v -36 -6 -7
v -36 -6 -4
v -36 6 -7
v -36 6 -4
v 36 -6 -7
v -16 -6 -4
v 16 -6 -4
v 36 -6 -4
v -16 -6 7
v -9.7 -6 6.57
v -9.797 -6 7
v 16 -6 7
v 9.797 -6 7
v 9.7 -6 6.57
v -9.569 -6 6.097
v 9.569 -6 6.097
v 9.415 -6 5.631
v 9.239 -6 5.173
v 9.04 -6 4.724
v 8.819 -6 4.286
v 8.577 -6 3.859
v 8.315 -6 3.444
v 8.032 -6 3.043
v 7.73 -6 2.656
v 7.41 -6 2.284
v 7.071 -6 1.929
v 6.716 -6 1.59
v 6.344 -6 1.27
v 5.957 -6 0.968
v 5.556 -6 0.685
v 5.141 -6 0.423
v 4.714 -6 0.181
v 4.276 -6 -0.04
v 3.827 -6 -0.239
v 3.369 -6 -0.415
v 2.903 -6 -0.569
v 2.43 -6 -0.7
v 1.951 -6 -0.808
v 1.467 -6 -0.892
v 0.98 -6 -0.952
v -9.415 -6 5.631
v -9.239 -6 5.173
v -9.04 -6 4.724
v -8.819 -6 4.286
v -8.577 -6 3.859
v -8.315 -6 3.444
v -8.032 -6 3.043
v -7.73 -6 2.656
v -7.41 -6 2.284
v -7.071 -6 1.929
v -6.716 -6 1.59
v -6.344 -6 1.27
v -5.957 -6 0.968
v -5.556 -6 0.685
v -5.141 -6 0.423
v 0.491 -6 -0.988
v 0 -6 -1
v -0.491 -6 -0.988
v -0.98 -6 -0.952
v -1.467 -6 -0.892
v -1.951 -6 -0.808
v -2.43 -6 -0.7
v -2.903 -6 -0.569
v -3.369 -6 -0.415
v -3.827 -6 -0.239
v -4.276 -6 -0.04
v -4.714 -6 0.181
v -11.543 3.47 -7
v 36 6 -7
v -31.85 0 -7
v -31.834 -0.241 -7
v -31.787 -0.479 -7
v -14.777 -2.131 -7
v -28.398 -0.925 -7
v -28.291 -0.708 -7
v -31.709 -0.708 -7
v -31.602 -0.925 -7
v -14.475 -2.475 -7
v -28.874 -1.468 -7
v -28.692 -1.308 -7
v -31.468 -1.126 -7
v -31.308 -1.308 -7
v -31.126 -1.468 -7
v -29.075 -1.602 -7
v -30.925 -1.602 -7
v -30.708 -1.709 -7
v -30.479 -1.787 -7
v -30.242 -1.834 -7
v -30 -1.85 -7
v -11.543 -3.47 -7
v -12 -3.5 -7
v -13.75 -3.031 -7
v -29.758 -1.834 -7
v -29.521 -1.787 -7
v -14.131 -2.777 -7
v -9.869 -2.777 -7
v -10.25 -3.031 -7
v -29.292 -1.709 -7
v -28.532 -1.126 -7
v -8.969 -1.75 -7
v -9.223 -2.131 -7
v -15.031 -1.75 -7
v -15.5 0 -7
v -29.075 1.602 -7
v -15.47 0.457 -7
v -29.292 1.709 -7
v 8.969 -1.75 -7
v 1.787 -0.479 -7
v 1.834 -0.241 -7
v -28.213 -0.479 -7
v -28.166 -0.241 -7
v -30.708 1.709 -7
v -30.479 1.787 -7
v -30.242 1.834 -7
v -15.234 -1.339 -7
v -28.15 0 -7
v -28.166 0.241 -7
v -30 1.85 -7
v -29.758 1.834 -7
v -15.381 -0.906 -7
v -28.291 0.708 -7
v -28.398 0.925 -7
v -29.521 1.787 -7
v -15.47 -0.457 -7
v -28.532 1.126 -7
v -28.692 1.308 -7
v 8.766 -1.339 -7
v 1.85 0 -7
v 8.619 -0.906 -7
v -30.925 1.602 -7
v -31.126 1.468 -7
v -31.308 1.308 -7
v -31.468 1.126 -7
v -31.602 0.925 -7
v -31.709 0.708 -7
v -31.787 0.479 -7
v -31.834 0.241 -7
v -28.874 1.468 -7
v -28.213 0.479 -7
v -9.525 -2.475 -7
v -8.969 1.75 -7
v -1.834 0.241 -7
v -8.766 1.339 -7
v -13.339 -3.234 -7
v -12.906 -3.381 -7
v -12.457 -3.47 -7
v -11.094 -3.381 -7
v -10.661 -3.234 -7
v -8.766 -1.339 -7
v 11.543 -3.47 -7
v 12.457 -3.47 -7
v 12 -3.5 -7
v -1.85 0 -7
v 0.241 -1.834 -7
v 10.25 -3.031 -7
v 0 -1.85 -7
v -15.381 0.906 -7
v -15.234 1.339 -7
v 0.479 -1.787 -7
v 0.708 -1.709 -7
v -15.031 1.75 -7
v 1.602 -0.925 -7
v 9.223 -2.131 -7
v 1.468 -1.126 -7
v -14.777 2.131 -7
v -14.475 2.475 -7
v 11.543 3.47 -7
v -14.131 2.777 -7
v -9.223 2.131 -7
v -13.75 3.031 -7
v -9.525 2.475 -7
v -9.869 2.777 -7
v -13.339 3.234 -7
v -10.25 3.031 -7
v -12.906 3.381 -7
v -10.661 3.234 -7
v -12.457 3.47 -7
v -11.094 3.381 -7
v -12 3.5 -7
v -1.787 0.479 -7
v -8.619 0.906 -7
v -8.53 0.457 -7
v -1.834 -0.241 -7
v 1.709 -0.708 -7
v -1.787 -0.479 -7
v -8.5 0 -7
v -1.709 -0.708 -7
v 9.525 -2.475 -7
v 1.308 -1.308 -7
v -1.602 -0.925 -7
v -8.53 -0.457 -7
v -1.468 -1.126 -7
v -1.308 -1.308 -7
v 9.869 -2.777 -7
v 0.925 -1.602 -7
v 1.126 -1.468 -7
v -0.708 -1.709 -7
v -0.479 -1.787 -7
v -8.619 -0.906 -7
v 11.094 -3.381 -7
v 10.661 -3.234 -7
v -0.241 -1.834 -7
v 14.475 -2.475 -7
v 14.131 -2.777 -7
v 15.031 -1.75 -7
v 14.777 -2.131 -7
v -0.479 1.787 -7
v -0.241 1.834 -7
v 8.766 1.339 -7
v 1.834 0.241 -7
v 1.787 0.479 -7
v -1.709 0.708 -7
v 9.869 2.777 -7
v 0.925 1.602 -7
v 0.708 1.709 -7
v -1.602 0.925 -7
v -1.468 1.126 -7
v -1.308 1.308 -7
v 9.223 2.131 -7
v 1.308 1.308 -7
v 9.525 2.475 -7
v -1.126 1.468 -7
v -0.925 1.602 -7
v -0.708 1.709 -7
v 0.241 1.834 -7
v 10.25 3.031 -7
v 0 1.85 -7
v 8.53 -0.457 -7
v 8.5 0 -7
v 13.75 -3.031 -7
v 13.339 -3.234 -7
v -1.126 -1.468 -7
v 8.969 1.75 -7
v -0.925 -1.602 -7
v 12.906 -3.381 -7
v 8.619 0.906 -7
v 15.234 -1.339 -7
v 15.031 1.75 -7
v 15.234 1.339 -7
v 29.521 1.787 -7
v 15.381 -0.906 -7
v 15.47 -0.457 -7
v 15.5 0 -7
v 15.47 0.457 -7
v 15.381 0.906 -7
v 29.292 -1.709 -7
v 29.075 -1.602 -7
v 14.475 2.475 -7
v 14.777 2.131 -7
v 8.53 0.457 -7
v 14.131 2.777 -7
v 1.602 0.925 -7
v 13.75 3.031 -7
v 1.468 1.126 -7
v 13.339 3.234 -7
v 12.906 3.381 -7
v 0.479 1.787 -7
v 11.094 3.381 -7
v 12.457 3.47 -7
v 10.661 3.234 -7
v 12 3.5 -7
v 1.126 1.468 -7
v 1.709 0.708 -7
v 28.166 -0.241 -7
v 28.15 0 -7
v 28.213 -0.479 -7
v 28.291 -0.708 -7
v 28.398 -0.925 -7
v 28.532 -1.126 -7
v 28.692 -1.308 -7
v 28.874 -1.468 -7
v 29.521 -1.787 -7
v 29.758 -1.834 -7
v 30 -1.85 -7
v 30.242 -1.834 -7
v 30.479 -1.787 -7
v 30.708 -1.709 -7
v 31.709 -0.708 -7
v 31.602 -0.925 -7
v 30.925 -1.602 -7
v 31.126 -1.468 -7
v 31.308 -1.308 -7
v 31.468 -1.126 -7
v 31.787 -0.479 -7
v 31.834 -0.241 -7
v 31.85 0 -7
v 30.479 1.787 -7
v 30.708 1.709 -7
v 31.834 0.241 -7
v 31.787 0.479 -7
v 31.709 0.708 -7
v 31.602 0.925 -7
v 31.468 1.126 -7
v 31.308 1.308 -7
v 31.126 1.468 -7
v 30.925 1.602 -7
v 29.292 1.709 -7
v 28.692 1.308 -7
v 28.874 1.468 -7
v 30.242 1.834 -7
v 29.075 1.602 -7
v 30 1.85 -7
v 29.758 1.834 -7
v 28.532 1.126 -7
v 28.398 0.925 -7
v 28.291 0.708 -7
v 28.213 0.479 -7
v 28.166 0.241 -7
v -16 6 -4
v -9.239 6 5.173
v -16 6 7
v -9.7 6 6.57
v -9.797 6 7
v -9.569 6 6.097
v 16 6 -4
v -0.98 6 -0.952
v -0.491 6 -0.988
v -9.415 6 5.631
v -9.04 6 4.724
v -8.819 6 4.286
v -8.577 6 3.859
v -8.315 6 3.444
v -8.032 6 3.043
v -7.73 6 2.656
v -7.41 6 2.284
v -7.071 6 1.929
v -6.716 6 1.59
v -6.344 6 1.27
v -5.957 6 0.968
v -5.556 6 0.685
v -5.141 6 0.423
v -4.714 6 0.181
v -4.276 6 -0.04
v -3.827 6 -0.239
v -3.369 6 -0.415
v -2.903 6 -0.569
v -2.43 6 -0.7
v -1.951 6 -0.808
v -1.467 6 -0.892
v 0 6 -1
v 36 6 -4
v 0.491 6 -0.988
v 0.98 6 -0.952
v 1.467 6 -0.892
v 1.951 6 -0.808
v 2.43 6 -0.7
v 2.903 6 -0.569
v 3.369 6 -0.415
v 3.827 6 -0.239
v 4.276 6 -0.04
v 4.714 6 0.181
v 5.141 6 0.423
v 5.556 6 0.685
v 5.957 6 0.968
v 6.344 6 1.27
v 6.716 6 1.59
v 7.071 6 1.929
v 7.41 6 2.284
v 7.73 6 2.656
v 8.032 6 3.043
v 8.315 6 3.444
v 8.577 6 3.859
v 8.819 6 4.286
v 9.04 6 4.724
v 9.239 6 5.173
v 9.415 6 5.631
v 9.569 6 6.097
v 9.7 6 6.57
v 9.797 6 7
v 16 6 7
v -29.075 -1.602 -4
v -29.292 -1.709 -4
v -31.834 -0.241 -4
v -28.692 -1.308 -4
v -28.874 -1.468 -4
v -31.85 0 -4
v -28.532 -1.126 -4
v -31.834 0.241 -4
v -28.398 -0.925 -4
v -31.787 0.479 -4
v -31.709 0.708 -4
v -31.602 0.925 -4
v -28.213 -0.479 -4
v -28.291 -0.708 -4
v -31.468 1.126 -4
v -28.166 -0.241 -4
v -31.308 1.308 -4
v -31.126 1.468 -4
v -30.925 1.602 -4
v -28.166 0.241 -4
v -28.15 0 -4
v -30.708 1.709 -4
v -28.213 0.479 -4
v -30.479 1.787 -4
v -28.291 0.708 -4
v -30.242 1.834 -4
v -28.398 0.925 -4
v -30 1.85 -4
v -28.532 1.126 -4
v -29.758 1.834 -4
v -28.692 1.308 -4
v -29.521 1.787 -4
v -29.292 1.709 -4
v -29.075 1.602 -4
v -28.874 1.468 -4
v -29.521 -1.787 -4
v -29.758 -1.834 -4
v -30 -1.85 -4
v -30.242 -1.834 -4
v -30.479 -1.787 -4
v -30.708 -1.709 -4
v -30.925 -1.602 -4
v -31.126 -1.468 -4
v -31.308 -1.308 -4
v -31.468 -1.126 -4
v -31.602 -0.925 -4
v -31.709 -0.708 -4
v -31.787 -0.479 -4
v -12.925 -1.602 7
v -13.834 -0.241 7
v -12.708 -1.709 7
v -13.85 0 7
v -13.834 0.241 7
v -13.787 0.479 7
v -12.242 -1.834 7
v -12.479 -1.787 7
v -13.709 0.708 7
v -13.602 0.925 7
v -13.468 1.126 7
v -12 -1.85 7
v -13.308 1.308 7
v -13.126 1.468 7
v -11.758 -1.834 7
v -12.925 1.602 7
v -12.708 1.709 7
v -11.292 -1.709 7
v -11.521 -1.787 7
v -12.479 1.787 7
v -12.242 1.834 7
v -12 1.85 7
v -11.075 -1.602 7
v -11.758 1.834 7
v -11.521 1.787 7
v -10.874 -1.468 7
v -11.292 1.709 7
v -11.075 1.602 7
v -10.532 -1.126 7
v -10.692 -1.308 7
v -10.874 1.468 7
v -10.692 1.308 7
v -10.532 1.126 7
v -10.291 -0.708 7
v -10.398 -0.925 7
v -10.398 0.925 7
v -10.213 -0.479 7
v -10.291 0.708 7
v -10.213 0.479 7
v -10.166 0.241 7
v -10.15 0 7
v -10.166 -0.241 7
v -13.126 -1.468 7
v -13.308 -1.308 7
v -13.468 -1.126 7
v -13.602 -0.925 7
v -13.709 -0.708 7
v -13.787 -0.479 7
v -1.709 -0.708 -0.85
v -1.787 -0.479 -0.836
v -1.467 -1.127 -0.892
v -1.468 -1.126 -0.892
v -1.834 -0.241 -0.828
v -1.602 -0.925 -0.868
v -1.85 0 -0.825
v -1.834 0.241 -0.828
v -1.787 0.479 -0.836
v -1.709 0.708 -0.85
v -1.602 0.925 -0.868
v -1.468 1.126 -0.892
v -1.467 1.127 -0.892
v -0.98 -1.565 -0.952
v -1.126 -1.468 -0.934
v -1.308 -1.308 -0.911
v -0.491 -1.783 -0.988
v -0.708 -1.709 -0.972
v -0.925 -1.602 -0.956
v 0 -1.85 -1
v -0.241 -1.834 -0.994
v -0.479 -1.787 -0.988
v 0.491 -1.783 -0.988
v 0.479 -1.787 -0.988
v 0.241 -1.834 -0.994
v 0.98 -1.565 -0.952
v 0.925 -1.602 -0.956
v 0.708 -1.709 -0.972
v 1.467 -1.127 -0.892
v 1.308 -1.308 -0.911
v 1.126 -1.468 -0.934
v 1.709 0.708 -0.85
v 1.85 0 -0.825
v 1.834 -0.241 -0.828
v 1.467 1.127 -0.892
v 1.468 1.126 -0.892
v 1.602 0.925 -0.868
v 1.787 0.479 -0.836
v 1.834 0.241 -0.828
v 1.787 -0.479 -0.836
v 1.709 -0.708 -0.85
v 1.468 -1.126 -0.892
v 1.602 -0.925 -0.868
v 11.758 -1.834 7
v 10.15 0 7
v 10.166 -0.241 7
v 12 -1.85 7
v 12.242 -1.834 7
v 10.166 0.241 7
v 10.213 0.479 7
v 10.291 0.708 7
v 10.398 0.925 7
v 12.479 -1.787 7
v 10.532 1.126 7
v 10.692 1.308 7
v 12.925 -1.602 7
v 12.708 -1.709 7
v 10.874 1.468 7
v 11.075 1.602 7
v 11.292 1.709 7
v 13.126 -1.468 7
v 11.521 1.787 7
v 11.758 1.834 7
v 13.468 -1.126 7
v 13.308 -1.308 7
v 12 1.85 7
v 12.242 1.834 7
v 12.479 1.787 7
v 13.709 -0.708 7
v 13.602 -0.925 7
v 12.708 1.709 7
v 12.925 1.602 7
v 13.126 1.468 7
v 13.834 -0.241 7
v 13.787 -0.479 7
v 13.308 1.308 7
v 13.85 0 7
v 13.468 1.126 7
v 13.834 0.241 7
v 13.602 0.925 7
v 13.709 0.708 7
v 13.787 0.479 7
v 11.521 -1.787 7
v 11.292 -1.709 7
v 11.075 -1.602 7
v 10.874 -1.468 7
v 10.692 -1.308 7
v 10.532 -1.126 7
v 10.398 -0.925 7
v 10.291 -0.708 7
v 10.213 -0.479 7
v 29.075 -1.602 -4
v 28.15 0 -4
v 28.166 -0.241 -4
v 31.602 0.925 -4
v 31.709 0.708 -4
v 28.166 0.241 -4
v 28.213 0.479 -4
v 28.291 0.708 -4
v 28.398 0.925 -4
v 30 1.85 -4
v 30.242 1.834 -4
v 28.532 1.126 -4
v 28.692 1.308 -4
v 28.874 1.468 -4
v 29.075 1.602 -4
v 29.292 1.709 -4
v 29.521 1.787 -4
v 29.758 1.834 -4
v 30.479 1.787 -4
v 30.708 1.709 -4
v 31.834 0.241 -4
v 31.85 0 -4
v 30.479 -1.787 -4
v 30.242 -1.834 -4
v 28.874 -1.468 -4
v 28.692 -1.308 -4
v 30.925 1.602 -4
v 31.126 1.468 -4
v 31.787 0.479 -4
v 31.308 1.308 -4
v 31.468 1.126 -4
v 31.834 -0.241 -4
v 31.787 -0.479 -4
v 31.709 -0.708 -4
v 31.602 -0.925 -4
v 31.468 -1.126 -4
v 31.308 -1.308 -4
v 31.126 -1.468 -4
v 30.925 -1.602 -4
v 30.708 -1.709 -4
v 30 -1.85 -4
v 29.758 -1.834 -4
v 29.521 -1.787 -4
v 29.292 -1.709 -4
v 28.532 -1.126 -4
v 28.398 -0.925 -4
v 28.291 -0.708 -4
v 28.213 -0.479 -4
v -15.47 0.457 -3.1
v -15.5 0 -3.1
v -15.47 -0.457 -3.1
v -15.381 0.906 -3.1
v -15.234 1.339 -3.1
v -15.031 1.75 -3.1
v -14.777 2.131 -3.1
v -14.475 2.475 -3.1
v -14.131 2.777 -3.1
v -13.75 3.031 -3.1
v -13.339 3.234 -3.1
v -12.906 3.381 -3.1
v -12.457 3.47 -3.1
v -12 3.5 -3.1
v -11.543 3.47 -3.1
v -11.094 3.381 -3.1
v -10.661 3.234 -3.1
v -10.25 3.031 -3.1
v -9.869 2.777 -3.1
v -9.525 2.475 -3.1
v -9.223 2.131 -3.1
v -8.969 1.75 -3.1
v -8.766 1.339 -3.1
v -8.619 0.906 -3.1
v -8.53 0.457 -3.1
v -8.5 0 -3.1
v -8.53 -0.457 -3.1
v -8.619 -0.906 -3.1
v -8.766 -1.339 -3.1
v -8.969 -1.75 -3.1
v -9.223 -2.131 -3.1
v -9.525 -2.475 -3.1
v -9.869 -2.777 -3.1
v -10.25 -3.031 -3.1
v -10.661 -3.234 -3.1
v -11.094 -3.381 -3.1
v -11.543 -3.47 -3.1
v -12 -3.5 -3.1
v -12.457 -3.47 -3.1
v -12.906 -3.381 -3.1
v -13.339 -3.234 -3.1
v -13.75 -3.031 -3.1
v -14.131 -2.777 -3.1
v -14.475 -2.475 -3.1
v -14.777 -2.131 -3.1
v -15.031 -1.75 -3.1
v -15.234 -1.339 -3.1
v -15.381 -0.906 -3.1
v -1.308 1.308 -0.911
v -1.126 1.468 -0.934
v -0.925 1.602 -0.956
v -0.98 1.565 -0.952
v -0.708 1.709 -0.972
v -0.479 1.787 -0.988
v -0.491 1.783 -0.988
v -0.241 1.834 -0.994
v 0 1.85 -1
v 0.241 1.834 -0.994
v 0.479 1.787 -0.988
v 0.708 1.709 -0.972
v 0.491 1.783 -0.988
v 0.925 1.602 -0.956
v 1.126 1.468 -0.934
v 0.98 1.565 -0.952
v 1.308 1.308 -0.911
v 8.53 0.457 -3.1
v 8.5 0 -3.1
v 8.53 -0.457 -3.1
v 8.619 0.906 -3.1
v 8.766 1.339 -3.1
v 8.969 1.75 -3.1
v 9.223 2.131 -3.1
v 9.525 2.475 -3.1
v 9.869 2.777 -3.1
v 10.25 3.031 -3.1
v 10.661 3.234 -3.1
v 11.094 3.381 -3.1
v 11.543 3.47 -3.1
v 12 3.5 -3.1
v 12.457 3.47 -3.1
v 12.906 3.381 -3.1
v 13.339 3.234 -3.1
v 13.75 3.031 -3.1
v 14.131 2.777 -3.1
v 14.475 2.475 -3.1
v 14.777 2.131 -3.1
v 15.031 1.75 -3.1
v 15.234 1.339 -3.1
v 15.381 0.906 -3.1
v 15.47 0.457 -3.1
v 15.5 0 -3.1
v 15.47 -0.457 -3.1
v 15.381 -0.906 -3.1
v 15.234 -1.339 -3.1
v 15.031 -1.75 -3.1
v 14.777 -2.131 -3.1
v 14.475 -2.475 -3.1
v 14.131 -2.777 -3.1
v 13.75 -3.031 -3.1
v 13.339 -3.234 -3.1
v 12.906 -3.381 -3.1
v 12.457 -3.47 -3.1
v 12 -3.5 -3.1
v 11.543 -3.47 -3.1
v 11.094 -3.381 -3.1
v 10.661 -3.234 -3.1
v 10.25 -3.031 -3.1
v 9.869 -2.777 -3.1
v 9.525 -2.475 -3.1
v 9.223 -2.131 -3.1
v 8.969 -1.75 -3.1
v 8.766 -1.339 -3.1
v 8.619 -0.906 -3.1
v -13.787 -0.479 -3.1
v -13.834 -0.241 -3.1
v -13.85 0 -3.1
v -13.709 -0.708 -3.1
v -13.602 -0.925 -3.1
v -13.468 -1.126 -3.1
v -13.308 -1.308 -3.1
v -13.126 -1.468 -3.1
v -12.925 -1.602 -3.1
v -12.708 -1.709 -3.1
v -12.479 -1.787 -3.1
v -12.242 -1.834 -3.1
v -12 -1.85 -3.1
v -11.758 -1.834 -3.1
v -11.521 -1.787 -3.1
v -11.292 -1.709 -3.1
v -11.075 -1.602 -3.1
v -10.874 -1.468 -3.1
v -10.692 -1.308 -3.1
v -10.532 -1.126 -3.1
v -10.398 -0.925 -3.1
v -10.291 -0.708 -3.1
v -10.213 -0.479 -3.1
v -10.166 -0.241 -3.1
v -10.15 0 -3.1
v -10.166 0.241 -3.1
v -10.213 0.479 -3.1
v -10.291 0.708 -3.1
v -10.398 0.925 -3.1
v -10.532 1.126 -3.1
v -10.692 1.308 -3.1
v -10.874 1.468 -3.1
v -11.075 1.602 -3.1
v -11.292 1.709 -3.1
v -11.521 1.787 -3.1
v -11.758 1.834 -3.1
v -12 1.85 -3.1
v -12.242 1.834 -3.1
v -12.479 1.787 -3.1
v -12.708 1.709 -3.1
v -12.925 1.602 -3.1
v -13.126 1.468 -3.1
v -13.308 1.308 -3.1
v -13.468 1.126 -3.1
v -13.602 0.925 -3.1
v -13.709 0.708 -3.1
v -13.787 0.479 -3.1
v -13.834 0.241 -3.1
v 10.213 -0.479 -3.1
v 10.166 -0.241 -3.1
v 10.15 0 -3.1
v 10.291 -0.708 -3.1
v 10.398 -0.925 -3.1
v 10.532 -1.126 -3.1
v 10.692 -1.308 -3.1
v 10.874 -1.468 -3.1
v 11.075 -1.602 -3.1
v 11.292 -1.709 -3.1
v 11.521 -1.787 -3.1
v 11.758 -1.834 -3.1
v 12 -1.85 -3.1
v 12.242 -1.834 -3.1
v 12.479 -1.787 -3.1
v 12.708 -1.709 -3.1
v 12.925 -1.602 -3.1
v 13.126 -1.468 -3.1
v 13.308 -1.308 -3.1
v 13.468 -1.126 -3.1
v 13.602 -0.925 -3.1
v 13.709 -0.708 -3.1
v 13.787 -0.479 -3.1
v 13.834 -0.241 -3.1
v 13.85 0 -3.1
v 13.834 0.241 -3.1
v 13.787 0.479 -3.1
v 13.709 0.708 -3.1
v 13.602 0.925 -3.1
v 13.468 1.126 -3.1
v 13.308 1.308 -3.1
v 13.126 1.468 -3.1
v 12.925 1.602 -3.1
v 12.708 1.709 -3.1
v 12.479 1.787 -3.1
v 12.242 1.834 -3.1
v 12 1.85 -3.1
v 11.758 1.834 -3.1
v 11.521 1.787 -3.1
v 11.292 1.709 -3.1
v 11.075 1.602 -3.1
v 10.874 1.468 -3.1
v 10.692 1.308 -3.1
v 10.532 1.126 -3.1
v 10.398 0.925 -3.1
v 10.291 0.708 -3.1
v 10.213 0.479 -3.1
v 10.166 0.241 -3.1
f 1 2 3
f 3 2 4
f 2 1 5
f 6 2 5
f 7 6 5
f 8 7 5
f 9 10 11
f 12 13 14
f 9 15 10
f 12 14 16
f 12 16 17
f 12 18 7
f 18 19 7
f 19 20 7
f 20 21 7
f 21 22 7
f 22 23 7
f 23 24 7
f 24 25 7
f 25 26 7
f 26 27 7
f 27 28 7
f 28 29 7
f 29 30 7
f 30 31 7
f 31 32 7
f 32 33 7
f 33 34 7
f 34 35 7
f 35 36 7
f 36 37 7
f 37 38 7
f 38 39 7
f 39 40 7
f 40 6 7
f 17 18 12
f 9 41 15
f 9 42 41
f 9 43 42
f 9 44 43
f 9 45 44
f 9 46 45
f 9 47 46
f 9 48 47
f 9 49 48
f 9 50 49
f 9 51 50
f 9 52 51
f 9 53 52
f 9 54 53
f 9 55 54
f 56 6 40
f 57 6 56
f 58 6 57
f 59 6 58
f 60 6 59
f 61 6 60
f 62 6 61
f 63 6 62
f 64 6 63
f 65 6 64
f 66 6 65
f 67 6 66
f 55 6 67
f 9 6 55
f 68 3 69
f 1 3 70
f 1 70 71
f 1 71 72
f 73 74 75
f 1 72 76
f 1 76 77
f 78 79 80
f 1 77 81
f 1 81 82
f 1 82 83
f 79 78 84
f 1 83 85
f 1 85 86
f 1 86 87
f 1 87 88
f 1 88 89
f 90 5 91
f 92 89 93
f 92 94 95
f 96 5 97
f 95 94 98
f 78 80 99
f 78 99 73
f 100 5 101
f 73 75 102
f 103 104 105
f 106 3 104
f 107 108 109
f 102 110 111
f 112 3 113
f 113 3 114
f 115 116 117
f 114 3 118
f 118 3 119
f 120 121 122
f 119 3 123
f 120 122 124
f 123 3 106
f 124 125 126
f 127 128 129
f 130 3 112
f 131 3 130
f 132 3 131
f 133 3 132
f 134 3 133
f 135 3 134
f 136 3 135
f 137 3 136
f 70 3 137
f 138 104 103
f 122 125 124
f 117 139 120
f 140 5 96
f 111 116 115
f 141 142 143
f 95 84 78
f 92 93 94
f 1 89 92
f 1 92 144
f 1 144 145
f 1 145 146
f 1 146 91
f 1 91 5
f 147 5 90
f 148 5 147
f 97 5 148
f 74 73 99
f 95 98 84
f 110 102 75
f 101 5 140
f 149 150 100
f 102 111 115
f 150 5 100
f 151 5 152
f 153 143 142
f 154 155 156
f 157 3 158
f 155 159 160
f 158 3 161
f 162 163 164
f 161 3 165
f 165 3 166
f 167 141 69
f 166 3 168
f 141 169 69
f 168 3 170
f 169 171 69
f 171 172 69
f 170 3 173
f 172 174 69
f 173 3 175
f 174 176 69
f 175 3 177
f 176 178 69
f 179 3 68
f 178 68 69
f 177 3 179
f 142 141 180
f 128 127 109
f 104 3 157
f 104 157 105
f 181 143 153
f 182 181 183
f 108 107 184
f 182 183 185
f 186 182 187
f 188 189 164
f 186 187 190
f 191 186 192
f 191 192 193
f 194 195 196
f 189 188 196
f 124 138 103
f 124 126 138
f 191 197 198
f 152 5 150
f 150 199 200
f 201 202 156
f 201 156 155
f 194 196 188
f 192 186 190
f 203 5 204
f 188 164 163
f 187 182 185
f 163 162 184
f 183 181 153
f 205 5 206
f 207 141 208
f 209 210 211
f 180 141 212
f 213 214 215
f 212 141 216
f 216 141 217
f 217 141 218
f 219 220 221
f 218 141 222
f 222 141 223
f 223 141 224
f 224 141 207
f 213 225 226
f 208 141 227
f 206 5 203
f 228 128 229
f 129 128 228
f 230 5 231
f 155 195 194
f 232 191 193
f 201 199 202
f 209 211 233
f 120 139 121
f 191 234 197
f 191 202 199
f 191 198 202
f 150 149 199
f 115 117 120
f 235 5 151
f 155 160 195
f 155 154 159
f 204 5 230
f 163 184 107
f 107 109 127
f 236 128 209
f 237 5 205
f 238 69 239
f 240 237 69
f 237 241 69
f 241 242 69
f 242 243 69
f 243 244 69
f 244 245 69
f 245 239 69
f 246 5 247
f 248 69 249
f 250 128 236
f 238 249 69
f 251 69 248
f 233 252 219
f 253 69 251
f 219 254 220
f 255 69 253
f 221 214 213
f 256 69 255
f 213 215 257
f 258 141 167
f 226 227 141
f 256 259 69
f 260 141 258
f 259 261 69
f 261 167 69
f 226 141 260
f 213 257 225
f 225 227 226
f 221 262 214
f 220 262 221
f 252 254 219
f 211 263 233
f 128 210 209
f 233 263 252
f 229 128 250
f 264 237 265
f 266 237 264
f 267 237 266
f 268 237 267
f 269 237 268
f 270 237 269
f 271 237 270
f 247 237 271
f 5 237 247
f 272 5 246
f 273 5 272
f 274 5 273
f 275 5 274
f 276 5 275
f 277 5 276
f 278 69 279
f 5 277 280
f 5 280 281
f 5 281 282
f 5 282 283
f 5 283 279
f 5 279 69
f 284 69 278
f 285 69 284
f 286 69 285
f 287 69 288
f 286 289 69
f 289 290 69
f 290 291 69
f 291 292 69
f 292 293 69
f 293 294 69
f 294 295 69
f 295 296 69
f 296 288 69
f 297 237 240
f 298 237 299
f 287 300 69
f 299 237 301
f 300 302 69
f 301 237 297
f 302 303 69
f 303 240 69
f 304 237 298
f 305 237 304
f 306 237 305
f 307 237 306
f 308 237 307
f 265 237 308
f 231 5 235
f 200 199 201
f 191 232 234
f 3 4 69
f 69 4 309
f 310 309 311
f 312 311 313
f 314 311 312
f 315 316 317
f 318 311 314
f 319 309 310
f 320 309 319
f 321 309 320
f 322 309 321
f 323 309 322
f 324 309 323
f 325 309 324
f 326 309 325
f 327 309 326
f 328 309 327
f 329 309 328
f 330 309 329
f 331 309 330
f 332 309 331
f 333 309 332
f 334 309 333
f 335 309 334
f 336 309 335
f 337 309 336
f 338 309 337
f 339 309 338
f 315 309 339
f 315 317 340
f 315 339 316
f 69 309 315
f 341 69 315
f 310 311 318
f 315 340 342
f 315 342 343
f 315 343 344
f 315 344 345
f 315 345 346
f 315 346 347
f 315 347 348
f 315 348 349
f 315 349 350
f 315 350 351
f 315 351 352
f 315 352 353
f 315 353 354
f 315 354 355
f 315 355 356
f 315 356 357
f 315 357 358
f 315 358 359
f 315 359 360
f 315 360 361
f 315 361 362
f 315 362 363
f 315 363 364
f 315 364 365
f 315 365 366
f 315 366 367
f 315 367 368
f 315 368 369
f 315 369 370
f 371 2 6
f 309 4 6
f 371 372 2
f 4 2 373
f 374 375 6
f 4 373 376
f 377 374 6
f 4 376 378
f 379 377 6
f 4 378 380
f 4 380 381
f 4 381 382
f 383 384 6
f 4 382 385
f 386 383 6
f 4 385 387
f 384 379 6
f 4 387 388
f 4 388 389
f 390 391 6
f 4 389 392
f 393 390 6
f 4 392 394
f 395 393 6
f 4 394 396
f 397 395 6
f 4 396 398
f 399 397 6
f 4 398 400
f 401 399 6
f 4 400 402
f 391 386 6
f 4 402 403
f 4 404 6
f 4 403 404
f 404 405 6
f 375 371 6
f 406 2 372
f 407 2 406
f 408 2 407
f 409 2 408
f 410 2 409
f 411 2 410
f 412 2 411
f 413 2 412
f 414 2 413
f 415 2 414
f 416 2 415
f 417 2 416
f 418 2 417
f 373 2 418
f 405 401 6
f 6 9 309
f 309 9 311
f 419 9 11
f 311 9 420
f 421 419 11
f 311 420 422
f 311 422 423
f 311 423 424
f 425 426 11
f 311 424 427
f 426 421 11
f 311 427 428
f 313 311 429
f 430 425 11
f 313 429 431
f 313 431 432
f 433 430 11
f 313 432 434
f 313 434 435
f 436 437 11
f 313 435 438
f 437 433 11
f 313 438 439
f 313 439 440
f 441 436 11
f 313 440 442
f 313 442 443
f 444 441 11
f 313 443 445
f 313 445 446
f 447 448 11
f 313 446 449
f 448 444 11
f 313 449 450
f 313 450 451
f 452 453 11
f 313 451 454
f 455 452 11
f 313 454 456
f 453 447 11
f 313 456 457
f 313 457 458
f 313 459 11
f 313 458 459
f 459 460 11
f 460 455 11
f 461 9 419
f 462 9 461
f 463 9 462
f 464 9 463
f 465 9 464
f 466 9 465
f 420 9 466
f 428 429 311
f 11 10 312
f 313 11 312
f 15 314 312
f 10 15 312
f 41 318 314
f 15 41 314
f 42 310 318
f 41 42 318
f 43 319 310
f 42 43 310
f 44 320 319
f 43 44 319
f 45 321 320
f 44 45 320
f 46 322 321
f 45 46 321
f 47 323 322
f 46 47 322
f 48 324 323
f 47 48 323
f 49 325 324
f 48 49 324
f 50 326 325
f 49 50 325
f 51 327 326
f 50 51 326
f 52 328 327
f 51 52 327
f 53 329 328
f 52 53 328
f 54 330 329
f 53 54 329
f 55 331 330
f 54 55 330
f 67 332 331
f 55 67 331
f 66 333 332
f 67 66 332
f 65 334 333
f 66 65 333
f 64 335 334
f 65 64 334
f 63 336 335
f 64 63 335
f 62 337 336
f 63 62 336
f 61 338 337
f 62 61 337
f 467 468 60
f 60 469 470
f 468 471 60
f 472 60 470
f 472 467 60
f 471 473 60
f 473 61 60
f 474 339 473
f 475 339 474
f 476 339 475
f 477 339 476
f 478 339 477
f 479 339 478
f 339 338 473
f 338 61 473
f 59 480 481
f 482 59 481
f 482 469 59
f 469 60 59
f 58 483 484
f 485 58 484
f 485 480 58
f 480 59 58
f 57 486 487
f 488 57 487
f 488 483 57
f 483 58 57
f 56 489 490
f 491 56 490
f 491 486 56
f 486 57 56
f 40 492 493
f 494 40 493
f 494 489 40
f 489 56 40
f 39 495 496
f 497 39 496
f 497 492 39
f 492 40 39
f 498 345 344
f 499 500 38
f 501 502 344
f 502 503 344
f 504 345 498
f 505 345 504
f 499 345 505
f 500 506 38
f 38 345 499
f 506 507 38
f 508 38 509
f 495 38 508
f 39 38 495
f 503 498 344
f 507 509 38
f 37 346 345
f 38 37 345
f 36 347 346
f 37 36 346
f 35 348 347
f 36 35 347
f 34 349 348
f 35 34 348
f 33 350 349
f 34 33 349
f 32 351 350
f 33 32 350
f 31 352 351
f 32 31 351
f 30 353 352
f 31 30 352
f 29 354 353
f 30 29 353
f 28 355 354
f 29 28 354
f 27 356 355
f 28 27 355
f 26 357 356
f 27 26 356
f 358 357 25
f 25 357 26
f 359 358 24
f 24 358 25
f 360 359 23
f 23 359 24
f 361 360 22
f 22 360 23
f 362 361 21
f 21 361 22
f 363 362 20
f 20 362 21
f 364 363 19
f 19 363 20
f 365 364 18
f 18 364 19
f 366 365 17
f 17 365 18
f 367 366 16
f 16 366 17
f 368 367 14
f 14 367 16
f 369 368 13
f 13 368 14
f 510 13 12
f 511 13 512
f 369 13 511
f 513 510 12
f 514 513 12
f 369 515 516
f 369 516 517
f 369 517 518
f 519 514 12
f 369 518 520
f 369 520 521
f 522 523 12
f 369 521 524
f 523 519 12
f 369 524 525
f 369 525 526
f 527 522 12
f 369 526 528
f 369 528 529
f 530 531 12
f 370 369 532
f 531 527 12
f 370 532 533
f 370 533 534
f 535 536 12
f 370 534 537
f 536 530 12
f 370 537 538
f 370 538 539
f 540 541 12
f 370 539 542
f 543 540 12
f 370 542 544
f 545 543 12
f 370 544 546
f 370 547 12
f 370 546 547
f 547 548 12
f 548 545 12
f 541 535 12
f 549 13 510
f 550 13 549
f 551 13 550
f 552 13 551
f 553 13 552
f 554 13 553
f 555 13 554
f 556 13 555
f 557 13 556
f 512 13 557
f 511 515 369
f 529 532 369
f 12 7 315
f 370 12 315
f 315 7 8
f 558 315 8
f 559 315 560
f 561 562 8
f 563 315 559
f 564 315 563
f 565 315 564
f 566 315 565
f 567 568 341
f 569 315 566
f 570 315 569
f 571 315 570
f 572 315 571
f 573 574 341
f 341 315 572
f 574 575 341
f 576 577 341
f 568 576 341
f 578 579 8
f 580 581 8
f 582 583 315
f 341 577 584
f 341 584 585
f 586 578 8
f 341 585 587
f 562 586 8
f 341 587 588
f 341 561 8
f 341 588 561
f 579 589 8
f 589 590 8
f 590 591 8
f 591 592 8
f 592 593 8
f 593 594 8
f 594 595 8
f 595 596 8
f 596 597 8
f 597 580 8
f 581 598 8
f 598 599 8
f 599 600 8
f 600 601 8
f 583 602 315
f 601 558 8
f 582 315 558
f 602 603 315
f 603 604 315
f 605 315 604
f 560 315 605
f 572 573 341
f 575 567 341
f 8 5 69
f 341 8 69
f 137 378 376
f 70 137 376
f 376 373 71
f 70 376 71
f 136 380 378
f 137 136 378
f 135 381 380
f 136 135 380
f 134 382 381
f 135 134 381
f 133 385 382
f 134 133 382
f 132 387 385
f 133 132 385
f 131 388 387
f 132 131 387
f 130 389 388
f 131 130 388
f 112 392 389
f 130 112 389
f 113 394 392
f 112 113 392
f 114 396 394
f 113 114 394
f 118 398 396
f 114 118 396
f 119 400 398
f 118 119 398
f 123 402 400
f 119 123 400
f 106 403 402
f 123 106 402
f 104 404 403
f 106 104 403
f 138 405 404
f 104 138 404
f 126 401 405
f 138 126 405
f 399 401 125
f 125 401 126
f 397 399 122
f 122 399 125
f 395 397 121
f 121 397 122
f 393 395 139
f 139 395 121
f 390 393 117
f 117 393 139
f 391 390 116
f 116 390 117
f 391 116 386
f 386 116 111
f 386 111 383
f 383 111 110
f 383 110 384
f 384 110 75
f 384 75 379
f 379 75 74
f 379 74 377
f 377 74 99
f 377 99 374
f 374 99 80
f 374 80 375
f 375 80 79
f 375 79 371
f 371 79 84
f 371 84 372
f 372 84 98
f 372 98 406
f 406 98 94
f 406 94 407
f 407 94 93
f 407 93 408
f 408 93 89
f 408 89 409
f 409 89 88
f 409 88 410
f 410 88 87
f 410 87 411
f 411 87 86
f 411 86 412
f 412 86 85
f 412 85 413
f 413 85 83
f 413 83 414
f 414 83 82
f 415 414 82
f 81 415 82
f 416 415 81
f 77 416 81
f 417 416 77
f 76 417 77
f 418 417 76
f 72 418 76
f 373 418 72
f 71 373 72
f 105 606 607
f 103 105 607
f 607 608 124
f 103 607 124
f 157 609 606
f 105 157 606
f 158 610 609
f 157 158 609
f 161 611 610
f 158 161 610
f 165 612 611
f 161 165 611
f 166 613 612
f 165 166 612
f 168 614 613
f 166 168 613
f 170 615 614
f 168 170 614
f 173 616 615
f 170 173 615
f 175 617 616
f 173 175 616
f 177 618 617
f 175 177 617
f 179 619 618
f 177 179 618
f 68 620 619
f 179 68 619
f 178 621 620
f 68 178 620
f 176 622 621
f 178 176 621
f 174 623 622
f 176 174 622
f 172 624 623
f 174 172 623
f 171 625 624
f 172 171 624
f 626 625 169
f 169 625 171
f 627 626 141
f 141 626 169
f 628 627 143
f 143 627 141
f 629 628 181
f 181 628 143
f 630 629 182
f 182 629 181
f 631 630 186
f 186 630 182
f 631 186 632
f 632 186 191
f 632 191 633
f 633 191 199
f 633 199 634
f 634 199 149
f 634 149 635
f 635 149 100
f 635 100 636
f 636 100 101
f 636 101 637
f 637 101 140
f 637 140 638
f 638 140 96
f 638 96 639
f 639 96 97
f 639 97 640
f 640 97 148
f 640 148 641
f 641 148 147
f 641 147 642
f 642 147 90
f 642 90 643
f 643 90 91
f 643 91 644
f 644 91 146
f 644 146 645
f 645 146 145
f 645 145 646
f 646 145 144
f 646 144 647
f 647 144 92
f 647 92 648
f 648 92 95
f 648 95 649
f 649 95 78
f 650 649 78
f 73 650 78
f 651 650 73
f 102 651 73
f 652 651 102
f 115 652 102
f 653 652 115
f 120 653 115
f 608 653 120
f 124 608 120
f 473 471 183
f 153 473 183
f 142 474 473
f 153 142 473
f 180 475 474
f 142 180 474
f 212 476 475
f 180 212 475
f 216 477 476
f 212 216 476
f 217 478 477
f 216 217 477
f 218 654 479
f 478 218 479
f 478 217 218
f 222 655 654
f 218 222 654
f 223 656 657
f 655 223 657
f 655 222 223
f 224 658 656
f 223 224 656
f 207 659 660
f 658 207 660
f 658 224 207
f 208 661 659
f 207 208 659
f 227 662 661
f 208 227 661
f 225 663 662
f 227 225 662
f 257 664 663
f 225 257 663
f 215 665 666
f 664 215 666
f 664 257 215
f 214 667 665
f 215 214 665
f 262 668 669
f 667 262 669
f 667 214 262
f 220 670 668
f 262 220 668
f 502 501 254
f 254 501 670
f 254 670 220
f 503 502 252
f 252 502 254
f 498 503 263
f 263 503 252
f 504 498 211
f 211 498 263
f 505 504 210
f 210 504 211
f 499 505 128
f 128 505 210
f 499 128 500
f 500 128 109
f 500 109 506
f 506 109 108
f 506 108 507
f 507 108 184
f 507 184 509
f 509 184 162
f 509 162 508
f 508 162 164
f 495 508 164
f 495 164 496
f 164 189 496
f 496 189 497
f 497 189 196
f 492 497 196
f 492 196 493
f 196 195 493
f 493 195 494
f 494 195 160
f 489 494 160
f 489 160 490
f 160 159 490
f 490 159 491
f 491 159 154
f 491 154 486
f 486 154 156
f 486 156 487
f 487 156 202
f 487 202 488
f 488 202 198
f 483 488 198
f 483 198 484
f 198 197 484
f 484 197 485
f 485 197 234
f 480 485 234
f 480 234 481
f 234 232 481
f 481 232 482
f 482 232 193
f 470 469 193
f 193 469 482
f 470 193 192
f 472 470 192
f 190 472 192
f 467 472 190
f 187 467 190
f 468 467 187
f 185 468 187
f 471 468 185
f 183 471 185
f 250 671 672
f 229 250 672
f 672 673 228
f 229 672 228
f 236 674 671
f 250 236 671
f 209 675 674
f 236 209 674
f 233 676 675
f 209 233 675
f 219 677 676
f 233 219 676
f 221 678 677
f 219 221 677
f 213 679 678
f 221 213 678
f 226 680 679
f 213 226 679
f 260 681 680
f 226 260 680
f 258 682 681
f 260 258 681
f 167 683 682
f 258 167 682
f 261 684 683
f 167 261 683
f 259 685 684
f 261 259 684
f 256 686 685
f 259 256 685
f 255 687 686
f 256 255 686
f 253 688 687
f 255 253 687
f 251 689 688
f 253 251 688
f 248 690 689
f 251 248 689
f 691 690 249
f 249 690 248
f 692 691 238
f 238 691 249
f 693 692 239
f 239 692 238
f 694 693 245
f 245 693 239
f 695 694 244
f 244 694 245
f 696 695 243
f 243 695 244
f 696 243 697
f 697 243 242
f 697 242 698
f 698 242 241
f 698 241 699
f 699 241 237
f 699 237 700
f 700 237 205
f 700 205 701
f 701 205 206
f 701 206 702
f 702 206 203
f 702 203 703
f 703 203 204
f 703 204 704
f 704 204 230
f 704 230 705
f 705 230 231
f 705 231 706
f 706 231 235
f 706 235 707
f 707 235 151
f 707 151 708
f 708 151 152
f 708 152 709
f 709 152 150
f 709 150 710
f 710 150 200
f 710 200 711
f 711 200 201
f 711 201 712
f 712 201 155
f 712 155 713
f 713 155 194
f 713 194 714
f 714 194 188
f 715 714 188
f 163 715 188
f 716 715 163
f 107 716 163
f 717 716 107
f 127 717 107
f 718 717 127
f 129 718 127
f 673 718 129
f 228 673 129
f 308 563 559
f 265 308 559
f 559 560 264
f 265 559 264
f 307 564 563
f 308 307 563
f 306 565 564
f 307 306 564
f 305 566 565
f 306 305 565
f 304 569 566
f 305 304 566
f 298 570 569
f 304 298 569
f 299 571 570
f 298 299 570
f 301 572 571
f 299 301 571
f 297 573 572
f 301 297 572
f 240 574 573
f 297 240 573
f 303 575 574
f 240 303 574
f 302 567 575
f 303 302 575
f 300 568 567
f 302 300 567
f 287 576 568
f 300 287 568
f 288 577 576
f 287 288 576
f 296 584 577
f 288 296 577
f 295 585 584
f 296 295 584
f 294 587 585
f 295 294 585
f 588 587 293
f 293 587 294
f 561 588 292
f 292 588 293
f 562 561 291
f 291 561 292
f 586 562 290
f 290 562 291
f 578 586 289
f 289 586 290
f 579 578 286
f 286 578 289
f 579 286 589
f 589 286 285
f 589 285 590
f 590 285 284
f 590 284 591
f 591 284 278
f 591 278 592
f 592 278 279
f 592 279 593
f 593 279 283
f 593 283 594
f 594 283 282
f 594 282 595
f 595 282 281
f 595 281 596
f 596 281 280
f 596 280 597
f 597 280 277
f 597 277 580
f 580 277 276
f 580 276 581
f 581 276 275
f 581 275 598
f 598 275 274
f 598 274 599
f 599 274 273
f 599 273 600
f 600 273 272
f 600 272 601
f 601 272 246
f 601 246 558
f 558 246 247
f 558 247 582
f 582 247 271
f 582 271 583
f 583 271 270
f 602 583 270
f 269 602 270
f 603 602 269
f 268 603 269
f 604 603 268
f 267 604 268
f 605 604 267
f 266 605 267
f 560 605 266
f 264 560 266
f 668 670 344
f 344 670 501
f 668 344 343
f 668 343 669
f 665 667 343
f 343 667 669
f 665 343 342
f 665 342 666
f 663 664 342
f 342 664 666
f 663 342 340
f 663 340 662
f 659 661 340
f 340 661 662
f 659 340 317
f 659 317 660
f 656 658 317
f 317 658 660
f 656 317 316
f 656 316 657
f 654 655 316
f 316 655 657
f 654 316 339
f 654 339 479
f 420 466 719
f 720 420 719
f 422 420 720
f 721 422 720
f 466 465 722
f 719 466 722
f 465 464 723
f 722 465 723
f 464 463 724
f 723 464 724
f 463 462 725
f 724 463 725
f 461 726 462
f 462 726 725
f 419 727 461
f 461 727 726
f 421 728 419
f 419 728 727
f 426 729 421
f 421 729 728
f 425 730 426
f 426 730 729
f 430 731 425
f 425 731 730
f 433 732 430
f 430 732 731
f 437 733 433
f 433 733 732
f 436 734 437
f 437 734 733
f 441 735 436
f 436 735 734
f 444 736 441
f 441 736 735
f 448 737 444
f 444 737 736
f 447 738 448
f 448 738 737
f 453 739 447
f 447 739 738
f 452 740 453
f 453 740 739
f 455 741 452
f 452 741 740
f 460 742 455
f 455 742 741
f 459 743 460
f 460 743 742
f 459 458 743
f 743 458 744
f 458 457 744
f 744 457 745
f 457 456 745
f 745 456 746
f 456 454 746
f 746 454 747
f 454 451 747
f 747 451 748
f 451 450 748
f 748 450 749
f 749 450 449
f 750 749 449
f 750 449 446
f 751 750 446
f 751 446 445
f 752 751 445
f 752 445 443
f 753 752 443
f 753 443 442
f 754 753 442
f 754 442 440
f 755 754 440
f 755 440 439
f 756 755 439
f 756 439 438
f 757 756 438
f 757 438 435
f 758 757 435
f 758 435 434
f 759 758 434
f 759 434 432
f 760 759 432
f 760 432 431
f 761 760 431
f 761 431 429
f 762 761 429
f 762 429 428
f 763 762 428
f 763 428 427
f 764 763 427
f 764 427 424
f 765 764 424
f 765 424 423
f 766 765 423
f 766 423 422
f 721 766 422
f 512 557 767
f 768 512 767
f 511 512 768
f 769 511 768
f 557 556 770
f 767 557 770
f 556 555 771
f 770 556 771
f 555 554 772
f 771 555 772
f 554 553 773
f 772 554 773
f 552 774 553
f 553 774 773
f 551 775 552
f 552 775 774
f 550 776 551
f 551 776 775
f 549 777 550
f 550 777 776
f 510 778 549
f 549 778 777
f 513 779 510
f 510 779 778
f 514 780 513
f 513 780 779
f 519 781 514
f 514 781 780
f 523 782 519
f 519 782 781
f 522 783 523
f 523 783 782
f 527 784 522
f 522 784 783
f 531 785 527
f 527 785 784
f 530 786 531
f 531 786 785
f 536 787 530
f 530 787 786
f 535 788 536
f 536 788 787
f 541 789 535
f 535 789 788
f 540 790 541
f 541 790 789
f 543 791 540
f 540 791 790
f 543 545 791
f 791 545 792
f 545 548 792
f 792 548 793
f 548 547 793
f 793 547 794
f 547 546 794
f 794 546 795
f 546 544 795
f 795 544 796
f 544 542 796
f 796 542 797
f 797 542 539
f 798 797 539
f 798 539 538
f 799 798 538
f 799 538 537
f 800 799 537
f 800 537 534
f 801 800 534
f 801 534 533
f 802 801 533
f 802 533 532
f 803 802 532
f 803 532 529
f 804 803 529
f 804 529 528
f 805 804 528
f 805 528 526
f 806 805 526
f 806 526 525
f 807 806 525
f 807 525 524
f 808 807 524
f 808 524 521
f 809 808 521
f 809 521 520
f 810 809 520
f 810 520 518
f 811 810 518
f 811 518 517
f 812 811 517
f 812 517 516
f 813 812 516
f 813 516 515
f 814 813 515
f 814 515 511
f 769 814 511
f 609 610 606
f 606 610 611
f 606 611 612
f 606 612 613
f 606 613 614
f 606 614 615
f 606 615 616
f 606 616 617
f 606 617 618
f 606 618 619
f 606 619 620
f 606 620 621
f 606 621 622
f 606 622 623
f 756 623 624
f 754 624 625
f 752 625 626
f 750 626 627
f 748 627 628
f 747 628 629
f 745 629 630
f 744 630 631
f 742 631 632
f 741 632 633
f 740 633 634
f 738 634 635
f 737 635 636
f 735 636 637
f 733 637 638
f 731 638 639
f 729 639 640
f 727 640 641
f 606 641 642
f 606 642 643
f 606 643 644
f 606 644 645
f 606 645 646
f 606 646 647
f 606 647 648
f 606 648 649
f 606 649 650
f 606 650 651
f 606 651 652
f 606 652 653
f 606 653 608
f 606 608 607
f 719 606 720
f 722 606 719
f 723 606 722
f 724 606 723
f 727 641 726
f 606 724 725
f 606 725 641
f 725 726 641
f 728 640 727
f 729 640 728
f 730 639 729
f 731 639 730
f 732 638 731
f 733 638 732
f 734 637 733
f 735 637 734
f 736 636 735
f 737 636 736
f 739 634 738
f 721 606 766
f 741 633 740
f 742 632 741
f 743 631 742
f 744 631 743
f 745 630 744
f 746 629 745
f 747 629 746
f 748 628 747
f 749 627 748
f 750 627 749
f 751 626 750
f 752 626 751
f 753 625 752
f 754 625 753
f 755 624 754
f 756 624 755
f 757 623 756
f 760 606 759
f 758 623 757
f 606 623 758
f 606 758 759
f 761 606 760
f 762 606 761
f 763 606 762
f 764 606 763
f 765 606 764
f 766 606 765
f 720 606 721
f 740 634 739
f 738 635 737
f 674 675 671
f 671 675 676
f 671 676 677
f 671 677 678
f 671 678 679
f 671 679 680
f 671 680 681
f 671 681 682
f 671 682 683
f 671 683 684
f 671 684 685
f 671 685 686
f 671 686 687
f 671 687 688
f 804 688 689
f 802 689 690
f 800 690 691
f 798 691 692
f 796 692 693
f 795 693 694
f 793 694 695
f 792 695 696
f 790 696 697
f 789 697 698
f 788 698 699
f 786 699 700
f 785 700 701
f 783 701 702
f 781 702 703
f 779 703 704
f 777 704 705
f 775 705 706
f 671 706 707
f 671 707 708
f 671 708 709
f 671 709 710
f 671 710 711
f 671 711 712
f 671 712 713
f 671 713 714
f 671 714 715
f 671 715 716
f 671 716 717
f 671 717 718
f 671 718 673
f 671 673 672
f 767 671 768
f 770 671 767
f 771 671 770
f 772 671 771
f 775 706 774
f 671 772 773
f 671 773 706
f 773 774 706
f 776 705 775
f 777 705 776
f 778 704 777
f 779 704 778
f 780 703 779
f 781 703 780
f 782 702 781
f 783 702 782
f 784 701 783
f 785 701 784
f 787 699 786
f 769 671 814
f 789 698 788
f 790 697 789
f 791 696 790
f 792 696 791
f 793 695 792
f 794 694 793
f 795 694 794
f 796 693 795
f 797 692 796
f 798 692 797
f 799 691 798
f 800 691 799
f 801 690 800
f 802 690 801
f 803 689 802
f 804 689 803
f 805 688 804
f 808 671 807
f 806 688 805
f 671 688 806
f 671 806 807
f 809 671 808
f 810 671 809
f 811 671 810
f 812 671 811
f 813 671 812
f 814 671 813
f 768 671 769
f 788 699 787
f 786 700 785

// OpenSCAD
module clamp_body()
{
screw_hole_r=1.85; // for 3.5mm screws
screw_head_r=3.5;
  difference()
    {
    // main body around spar hole
    union()
      {
      cube([32,12,14], center=true);
      translate([0,0,-5.5])
      cube([72,12,3], center=true);
      }
   union()
      {
      translate([0,0,9])
        // main notch for spar
        rotate(90,[1,0,0])
        cylinder(h=50, r=10, center=true,$fn=128);

      // centre hole for bolting through spar
      cylinder(h=40,r=screw_hole_r,center=true,$fn=48);

      // Holes along side rails for bolting alongside spar
      translate([12,0,-20])
      cylinder(h=40,r=screw_hole_r,centre=true,$fn=48);
      translate([-12,0,-20])
      cylinder(h=40,r=screw_hole_r,centre=true,$fn=48);

      // Screw head holes (wider than screw holes)
      translate([12,0,-7.1])
      cylinder(h=4,r=screw_head_r,centre=true,$fn=48);
      translate([-12,0,-7.1])
      cylinder(h=4,r=screw_head_r,centre=true,$fn=48);

      // Holes in bottom plate for bolting to fuselage
      translate([-30,0,-20])
      cylinder(h=40,r=screw_hole_r,centre=true,$fn=48);
      translate([30,0,-20])
      cylinder(h=40,r=screw_hole_r,centre=true,$fn=48);
    }
  }
 
}

module bottom_plate()
{

}

clamp_body();
bottom_plate();
